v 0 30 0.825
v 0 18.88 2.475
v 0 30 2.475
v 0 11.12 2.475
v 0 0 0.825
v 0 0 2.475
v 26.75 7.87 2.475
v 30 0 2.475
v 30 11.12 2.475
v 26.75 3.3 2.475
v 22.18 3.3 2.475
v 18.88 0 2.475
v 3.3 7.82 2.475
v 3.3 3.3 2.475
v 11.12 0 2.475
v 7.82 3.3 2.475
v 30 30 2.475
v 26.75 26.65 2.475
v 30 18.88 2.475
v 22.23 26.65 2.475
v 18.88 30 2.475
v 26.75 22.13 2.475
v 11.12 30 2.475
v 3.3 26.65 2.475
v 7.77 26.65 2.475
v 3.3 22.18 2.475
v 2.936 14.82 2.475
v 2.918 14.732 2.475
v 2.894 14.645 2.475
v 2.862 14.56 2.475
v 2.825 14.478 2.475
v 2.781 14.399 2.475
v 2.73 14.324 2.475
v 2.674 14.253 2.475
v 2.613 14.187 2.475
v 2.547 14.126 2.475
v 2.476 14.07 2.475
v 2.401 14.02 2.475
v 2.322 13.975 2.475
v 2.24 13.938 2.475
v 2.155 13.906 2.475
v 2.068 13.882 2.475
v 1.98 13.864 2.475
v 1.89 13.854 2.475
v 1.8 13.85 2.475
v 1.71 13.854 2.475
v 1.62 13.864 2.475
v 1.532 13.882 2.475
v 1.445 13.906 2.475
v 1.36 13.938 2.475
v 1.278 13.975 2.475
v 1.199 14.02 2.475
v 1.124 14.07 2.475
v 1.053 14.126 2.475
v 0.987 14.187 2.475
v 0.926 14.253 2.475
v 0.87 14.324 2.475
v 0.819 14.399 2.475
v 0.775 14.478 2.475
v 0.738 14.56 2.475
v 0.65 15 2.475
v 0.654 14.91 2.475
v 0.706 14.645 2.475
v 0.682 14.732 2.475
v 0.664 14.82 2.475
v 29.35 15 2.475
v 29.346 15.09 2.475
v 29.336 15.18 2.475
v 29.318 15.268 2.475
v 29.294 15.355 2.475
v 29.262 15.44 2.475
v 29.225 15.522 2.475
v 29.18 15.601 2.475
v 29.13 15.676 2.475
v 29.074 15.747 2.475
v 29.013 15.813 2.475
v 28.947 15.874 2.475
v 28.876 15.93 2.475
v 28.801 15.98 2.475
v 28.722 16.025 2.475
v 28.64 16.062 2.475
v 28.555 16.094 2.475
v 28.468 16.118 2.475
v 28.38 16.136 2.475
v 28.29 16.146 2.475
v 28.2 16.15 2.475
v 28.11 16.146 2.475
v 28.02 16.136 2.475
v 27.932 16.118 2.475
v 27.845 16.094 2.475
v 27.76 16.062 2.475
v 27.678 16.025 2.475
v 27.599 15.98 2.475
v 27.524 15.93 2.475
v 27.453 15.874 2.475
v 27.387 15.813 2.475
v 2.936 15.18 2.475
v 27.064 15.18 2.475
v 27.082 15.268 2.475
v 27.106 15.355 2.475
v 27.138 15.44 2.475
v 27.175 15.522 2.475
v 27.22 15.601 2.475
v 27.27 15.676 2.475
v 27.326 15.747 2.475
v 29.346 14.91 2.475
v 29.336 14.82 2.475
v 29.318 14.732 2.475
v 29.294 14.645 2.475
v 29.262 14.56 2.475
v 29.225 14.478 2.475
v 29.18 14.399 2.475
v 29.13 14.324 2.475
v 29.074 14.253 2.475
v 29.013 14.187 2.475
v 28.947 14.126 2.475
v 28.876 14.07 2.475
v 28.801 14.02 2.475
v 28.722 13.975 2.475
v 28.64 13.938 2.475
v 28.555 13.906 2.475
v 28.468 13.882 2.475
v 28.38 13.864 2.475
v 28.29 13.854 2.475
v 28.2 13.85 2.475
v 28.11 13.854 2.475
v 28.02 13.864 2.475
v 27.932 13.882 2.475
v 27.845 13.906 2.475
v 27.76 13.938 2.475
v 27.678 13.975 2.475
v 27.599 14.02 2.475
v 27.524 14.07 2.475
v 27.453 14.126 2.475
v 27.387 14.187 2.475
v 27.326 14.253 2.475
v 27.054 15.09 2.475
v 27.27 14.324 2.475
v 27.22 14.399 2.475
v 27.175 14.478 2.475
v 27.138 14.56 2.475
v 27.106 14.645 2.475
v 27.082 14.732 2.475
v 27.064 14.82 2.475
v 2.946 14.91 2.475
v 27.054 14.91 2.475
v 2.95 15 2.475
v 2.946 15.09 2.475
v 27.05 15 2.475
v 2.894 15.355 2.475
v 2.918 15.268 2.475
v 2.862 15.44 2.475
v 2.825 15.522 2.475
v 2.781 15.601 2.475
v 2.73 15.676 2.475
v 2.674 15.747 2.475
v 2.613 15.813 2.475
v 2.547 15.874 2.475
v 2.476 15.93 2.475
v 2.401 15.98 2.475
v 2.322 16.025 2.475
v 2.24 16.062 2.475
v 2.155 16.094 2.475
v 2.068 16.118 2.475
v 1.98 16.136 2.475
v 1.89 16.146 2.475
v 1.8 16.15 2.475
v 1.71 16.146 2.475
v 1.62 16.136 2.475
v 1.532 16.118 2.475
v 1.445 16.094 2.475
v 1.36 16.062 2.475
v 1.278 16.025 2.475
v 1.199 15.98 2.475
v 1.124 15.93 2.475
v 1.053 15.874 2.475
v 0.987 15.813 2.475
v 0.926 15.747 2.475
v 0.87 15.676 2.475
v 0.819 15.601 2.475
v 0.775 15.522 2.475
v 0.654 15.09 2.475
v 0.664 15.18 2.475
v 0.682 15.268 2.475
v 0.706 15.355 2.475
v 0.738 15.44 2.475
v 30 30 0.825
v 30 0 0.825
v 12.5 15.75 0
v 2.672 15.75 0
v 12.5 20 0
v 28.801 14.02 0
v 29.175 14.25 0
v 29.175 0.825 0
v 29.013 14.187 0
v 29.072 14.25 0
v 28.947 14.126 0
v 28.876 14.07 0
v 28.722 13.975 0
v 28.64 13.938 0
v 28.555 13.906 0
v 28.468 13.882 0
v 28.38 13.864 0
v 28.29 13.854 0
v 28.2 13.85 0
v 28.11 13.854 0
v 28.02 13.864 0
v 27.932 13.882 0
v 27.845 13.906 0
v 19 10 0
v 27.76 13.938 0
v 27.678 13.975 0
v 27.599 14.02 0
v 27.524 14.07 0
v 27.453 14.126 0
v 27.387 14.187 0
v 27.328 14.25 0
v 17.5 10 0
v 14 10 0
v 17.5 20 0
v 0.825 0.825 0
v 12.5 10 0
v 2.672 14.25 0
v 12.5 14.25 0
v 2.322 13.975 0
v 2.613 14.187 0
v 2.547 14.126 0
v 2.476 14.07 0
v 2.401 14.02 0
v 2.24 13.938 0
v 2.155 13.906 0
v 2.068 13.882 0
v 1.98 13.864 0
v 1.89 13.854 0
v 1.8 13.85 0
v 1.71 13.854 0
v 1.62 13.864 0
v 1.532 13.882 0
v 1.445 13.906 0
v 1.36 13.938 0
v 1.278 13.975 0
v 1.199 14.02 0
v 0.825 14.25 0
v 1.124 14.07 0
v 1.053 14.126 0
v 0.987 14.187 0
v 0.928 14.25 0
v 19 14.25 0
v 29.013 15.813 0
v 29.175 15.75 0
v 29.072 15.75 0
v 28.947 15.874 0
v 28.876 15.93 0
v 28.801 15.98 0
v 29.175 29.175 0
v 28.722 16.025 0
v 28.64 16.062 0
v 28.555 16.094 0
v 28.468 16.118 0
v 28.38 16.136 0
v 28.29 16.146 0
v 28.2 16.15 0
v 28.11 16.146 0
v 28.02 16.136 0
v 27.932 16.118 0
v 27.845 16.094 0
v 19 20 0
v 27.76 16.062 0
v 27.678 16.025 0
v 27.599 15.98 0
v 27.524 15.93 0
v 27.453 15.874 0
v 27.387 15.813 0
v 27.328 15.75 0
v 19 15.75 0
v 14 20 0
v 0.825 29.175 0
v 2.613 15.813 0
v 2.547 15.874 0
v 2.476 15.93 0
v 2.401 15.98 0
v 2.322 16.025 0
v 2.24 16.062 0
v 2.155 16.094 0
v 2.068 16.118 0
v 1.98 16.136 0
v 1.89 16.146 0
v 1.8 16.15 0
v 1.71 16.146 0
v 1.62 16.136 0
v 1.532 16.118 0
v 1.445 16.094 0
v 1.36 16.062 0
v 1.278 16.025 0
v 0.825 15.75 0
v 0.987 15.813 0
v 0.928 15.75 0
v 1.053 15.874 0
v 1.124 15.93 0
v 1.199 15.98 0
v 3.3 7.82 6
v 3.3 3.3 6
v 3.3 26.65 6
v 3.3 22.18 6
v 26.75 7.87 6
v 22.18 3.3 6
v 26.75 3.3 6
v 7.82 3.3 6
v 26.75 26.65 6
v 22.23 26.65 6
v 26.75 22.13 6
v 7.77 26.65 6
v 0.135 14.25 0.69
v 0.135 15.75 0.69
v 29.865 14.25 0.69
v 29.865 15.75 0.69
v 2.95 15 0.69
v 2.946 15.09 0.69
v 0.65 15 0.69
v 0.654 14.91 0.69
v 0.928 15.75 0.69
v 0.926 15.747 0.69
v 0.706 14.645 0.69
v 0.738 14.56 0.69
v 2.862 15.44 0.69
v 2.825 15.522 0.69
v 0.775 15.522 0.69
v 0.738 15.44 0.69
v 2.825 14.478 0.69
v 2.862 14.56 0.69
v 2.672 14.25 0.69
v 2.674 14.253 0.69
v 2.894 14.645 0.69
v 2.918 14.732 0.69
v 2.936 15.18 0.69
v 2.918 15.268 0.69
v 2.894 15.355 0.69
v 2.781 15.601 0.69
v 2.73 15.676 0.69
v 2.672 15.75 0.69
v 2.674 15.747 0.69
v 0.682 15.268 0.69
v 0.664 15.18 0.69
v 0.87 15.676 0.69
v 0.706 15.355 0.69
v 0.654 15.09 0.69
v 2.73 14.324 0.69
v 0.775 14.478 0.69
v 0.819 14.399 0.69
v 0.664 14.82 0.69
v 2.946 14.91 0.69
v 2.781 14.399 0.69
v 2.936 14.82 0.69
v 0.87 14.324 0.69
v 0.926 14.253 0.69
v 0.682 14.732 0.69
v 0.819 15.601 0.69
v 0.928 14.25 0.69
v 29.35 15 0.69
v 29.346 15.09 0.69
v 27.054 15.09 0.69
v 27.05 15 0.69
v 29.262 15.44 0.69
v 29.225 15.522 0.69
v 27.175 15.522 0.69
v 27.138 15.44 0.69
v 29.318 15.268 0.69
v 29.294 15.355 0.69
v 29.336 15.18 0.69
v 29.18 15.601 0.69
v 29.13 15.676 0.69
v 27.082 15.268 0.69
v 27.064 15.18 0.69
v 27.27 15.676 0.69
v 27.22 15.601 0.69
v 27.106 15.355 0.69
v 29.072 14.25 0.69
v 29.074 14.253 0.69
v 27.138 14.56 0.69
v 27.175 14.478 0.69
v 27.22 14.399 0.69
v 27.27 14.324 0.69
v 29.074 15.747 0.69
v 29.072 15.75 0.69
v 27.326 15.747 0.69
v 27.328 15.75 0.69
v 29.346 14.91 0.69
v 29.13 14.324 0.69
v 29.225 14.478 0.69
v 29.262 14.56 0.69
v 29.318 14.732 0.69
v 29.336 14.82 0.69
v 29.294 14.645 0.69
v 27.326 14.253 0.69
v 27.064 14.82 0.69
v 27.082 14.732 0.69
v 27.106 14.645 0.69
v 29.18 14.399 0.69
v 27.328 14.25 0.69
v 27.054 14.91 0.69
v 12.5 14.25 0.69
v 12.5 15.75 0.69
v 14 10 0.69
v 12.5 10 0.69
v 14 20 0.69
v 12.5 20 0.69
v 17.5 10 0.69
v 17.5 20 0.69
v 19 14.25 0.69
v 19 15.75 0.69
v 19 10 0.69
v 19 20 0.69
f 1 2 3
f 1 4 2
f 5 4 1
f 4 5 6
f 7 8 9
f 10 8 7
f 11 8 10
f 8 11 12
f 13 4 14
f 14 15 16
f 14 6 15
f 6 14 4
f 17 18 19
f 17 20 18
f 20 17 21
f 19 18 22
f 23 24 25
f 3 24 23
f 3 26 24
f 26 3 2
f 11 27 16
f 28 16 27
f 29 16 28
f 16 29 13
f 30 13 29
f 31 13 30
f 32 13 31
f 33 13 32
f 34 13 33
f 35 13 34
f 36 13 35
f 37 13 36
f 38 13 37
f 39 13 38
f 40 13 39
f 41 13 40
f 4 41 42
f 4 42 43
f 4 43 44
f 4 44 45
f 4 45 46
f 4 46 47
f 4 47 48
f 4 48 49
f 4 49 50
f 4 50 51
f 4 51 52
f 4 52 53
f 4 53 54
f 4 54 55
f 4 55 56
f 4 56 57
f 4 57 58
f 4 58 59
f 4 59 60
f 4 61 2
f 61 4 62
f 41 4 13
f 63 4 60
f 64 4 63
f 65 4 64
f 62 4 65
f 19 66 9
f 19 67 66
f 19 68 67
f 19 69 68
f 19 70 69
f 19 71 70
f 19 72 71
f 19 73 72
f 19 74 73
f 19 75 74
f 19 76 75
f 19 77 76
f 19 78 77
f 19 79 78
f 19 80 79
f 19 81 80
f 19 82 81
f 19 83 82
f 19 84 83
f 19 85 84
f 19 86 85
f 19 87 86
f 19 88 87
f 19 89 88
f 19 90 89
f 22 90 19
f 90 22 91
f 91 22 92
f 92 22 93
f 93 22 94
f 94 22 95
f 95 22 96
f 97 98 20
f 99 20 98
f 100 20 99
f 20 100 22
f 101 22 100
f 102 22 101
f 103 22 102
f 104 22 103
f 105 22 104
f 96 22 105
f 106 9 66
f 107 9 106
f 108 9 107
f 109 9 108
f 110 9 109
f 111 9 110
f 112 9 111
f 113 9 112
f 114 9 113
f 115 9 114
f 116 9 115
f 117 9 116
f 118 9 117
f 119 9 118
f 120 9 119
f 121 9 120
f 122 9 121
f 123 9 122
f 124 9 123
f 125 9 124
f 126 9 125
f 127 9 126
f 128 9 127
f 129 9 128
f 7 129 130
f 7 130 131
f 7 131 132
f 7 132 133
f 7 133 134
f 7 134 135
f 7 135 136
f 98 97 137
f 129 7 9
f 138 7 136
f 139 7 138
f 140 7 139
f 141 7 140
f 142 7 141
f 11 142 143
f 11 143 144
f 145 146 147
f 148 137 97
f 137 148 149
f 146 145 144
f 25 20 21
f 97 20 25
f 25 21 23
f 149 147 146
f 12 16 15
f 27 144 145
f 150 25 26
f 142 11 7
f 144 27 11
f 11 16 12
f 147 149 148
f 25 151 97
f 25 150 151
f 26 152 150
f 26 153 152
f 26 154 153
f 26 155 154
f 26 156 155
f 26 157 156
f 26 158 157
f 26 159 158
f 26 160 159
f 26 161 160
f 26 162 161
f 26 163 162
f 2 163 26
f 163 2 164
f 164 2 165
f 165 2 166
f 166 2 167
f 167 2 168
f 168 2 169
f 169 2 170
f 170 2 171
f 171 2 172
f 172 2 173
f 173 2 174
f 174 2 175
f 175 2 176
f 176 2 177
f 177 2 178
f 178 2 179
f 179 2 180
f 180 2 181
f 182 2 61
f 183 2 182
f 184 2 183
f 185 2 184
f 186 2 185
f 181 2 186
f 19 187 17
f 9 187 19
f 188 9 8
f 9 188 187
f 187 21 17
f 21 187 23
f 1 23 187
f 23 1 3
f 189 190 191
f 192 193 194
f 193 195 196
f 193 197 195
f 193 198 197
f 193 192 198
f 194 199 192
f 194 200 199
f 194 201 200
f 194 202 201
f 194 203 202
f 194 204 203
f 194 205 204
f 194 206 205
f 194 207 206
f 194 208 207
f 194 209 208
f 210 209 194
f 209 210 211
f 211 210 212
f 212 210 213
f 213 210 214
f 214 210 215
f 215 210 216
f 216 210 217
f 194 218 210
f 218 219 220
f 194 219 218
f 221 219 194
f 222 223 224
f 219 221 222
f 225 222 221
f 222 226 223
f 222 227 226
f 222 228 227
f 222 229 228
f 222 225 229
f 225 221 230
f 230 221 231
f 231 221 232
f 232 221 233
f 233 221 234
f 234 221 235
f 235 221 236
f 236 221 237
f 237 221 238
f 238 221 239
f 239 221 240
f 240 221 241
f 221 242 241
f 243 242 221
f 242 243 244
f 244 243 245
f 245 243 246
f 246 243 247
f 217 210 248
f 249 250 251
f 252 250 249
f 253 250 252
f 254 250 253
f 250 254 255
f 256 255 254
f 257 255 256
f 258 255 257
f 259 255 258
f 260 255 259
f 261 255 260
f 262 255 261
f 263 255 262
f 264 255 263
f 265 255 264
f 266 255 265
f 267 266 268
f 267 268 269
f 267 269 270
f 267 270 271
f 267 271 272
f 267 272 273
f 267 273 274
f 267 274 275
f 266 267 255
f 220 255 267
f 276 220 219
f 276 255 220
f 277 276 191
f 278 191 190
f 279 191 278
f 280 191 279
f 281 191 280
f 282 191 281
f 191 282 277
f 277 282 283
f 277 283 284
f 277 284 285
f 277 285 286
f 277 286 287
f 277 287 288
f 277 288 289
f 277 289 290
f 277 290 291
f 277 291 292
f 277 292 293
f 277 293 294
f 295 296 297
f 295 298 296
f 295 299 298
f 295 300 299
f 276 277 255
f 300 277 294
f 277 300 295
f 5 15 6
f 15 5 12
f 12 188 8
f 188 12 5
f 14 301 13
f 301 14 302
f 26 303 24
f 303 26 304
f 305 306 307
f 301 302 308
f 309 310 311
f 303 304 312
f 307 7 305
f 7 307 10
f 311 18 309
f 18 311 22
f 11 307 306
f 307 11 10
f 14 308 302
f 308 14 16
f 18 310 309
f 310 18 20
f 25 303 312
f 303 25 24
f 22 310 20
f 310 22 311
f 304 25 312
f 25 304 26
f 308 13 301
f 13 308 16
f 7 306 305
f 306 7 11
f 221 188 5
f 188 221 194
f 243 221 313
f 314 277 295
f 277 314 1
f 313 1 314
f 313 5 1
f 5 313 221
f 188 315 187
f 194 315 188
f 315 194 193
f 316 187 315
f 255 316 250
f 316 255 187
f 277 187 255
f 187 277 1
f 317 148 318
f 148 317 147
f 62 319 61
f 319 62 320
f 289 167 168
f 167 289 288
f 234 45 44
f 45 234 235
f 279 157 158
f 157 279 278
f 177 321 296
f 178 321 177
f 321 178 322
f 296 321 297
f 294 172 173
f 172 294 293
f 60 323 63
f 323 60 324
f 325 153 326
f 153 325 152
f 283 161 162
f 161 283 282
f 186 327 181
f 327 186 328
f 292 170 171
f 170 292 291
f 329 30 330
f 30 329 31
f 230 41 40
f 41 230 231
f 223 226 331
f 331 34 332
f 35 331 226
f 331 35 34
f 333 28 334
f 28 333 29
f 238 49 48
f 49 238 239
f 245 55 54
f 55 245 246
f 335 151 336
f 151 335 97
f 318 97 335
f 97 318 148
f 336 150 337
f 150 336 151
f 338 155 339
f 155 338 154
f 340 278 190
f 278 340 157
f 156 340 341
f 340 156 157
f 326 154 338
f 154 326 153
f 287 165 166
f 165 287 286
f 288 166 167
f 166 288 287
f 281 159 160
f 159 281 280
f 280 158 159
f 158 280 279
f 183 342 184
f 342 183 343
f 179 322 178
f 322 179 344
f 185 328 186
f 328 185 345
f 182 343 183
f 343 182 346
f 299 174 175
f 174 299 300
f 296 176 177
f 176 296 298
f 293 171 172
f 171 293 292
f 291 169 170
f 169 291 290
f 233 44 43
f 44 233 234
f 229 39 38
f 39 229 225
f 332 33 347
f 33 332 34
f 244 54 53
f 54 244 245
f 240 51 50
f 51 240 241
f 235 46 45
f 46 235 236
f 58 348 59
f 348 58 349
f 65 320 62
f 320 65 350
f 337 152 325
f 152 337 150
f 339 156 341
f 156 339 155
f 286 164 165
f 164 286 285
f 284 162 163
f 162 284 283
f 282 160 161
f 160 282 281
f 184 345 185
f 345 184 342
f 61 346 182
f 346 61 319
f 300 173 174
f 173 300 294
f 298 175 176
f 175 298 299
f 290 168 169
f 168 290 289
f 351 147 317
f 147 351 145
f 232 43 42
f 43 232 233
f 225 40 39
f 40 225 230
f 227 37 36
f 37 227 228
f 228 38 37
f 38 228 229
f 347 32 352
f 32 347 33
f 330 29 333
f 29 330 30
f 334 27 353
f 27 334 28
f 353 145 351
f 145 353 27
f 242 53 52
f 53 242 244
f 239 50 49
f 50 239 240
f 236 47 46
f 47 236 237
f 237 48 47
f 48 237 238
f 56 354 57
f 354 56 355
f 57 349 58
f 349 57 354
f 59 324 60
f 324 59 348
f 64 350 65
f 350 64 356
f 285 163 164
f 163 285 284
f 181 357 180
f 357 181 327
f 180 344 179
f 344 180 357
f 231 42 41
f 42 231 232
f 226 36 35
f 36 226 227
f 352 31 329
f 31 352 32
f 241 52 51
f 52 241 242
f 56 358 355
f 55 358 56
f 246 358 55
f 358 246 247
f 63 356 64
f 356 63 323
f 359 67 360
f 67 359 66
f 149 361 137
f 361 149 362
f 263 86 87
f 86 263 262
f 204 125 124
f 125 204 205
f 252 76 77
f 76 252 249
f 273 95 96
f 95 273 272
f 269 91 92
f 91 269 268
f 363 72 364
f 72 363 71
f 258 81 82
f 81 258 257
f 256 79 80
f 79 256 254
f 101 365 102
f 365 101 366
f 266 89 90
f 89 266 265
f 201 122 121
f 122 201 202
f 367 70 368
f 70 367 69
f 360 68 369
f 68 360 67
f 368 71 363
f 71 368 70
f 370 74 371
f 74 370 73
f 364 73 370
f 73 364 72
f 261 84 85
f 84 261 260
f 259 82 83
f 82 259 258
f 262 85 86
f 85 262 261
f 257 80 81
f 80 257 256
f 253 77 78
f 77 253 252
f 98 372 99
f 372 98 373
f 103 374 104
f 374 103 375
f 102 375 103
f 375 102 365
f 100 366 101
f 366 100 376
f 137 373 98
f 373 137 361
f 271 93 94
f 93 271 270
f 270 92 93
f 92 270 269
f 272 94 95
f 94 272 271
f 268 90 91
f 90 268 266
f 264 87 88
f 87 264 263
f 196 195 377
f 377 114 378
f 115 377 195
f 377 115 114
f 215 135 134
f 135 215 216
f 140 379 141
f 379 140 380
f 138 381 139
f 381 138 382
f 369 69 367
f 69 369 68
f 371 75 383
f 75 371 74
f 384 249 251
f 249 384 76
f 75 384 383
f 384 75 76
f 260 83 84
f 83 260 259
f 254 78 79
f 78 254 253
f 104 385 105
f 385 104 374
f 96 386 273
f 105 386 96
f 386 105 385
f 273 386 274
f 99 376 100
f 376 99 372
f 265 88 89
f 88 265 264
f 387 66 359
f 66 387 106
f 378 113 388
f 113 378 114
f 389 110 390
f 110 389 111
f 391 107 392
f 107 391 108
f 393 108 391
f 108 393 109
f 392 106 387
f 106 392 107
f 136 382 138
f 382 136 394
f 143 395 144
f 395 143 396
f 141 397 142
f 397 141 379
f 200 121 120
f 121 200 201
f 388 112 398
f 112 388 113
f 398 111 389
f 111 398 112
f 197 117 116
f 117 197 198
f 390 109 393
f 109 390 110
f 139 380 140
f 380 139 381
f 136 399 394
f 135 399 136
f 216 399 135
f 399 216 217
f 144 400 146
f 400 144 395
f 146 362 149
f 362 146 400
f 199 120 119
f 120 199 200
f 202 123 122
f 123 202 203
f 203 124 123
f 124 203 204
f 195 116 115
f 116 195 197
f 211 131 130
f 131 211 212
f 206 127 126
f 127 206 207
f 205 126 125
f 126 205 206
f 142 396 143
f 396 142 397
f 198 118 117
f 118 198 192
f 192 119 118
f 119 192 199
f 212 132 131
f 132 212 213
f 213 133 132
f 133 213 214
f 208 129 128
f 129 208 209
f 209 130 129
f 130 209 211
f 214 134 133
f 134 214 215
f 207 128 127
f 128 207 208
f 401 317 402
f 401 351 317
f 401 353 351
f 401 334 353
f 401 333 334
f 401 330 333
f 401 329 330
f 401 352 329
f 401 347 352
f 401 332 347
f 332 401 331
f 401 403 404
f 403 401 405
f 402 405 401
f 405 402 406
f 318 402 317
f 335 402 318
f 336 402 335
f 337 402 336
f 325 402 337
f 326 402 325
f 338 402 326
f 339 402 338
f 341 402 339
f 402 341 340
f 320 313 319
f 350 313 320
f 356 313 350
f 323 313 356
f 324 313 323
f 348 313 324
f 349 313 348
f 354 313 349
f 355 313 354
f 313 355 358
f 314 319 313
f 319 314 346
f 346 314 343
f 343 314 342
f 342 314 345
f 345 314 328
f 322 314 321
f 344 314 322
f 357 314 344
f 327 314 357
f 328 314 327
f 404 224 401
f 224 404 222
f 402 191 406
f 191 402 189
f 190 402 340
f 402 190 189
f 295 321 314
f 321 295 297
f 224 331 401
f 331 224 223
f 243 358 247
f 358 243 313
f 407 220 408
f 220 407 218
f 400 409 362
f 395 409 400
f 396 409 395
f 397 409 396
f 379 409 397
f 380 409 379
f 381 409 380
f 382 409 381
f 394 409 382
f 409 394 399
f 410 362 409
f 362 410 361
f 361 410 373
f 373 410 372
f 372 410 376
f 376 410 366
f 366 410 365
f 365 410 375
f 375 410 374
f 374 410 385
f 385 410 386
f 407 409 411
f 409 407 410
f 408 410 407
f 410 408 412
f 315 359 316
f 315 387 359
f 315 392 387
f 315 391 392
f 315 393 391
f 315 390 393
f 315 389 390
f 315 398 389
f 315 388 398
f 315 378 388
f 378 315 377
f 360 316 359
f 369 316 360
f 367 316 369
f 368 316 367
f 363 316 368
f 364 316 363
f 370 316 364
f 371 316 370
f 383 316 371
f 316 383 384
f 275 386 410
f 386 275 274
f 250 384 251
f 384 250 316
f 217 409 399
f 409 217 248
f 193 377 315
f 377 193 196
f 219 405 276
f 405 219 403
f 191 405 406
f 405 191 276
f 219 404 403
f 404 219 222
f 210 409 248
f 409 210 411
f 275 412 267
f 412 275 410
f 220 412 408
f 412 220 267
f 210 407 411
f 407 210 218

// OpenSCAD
// file: settings.scad
cube_width=30;
cube_height=16;
cube_thickness=3.3;

cap_width=30;
cap_height=6;
cap_thickness=3.3;

glyph_depth=0.7;
glyph_thickness=1.5;

photo_resitor_hole_r = 3.1;
spring_contact_hole_r = 3.35;
// file: sym_capacitor.scad
module capacitor(length, width, thickness, height)
{
    translate([0,-thickness/2,0])cube([length/2-width/4, thickness, height]);
    
    translate([(length/2+width/4),-thickness/2,0])cube([(length/2-width/4), thickness, height]);
    
    translate([(length-width/2)/2,-width/2, 0])cube([thickness, width, height]);
    
    translate([(length+width/2)/2-thickness,-width/2, 0])cube([thickness, width, height]);
}

capacitor(30, 12, 1, 1);
// file: cap_1x1.scad
include <settings.scad>

module cap_1x1(width, height, thickness, holes_mask)
{
    width1=width-thickness;
    difference()
    {
        union()
        {
            cube([width, width, thickness*3/4]);
            translate([thickness,thickness,0])cube([width-2*thickness, width-2*thickness, height]);
        }
        union()
        {
            translate([width/2,width/2,0])rotate([0,0,45])translate([-width1/2,-width1/2,thickness*3/4]) cube([width1,width1,height]);
                        //corners
            translate([0,0.25*thickness,0])rotate([45,0,0]) translate([-0.5*width, -width, -0.5*height]) cube([2*width, width, 2*height]);
            translate([0.25*thickness,0,0]) rotate([0,-45,0]) translate([-width, -0.5*width, -0.5*height]) cube([width, 2*width, 2*height]);
            translate([width-0.25*thickness,0,0]) rotate([0,45,0]) translate([0, 0, -0.5*height]) cube([width, 2*width, 2*height]);
            translate([0,width-0.25*thickness,0]) rotate([-45,0,0]) translate([-0.5*width, 0, -0.5*height]) cube([2*width, width, 2*height]);
            
            if (holes_mask >= 8)
            {
                translate([width/2, thickness-1.5, -0.5]) cylinder(r=1.15, h=height*1.5, $fn=80);
            }
            if ((holes_mask%8) >= 4)
            {
                translate([width/2, width-thickness+1.5, -0.5]) cylinder(r=1.15, h=height*1.5, $fn=80);
            }
            if ((holes_mask%4)>= 2)
            {
                translate([thickness-1.5, width/2, -0.5]) cylinder(r=1.15, h=height*1.5, $fn=80);
            }
            if (holes_mask%2 >= 1)
            {
                translate([width-thickness+1.5, width/2, -0.5]) cylinder(r=1.15, h=height*1.5, $fn=80);
            }
        }
    }
}

cap_1x1(cap_width, cap_height, cap_thickness, 9);
//ring(10,1,1);
//arrow(1, 20, 3, 1);
//transistor_npn(30, 1, 1);
// main file
use <cap_1x1.scad>
use <sym_capacitor.scad>
include <settings.scad>

module cap_1x1_capacitor(width, height, thickness)
{
    difference()
    {
        cap_1x1(width, height, thickness, 3);
        translate([0,width/2,-0.01]) capacitor(width, width/3, glyph_thickness, glyph_depth);
    }
}

cap_1x1_capacitor(cap_width, cap_height, cap_thickness);
